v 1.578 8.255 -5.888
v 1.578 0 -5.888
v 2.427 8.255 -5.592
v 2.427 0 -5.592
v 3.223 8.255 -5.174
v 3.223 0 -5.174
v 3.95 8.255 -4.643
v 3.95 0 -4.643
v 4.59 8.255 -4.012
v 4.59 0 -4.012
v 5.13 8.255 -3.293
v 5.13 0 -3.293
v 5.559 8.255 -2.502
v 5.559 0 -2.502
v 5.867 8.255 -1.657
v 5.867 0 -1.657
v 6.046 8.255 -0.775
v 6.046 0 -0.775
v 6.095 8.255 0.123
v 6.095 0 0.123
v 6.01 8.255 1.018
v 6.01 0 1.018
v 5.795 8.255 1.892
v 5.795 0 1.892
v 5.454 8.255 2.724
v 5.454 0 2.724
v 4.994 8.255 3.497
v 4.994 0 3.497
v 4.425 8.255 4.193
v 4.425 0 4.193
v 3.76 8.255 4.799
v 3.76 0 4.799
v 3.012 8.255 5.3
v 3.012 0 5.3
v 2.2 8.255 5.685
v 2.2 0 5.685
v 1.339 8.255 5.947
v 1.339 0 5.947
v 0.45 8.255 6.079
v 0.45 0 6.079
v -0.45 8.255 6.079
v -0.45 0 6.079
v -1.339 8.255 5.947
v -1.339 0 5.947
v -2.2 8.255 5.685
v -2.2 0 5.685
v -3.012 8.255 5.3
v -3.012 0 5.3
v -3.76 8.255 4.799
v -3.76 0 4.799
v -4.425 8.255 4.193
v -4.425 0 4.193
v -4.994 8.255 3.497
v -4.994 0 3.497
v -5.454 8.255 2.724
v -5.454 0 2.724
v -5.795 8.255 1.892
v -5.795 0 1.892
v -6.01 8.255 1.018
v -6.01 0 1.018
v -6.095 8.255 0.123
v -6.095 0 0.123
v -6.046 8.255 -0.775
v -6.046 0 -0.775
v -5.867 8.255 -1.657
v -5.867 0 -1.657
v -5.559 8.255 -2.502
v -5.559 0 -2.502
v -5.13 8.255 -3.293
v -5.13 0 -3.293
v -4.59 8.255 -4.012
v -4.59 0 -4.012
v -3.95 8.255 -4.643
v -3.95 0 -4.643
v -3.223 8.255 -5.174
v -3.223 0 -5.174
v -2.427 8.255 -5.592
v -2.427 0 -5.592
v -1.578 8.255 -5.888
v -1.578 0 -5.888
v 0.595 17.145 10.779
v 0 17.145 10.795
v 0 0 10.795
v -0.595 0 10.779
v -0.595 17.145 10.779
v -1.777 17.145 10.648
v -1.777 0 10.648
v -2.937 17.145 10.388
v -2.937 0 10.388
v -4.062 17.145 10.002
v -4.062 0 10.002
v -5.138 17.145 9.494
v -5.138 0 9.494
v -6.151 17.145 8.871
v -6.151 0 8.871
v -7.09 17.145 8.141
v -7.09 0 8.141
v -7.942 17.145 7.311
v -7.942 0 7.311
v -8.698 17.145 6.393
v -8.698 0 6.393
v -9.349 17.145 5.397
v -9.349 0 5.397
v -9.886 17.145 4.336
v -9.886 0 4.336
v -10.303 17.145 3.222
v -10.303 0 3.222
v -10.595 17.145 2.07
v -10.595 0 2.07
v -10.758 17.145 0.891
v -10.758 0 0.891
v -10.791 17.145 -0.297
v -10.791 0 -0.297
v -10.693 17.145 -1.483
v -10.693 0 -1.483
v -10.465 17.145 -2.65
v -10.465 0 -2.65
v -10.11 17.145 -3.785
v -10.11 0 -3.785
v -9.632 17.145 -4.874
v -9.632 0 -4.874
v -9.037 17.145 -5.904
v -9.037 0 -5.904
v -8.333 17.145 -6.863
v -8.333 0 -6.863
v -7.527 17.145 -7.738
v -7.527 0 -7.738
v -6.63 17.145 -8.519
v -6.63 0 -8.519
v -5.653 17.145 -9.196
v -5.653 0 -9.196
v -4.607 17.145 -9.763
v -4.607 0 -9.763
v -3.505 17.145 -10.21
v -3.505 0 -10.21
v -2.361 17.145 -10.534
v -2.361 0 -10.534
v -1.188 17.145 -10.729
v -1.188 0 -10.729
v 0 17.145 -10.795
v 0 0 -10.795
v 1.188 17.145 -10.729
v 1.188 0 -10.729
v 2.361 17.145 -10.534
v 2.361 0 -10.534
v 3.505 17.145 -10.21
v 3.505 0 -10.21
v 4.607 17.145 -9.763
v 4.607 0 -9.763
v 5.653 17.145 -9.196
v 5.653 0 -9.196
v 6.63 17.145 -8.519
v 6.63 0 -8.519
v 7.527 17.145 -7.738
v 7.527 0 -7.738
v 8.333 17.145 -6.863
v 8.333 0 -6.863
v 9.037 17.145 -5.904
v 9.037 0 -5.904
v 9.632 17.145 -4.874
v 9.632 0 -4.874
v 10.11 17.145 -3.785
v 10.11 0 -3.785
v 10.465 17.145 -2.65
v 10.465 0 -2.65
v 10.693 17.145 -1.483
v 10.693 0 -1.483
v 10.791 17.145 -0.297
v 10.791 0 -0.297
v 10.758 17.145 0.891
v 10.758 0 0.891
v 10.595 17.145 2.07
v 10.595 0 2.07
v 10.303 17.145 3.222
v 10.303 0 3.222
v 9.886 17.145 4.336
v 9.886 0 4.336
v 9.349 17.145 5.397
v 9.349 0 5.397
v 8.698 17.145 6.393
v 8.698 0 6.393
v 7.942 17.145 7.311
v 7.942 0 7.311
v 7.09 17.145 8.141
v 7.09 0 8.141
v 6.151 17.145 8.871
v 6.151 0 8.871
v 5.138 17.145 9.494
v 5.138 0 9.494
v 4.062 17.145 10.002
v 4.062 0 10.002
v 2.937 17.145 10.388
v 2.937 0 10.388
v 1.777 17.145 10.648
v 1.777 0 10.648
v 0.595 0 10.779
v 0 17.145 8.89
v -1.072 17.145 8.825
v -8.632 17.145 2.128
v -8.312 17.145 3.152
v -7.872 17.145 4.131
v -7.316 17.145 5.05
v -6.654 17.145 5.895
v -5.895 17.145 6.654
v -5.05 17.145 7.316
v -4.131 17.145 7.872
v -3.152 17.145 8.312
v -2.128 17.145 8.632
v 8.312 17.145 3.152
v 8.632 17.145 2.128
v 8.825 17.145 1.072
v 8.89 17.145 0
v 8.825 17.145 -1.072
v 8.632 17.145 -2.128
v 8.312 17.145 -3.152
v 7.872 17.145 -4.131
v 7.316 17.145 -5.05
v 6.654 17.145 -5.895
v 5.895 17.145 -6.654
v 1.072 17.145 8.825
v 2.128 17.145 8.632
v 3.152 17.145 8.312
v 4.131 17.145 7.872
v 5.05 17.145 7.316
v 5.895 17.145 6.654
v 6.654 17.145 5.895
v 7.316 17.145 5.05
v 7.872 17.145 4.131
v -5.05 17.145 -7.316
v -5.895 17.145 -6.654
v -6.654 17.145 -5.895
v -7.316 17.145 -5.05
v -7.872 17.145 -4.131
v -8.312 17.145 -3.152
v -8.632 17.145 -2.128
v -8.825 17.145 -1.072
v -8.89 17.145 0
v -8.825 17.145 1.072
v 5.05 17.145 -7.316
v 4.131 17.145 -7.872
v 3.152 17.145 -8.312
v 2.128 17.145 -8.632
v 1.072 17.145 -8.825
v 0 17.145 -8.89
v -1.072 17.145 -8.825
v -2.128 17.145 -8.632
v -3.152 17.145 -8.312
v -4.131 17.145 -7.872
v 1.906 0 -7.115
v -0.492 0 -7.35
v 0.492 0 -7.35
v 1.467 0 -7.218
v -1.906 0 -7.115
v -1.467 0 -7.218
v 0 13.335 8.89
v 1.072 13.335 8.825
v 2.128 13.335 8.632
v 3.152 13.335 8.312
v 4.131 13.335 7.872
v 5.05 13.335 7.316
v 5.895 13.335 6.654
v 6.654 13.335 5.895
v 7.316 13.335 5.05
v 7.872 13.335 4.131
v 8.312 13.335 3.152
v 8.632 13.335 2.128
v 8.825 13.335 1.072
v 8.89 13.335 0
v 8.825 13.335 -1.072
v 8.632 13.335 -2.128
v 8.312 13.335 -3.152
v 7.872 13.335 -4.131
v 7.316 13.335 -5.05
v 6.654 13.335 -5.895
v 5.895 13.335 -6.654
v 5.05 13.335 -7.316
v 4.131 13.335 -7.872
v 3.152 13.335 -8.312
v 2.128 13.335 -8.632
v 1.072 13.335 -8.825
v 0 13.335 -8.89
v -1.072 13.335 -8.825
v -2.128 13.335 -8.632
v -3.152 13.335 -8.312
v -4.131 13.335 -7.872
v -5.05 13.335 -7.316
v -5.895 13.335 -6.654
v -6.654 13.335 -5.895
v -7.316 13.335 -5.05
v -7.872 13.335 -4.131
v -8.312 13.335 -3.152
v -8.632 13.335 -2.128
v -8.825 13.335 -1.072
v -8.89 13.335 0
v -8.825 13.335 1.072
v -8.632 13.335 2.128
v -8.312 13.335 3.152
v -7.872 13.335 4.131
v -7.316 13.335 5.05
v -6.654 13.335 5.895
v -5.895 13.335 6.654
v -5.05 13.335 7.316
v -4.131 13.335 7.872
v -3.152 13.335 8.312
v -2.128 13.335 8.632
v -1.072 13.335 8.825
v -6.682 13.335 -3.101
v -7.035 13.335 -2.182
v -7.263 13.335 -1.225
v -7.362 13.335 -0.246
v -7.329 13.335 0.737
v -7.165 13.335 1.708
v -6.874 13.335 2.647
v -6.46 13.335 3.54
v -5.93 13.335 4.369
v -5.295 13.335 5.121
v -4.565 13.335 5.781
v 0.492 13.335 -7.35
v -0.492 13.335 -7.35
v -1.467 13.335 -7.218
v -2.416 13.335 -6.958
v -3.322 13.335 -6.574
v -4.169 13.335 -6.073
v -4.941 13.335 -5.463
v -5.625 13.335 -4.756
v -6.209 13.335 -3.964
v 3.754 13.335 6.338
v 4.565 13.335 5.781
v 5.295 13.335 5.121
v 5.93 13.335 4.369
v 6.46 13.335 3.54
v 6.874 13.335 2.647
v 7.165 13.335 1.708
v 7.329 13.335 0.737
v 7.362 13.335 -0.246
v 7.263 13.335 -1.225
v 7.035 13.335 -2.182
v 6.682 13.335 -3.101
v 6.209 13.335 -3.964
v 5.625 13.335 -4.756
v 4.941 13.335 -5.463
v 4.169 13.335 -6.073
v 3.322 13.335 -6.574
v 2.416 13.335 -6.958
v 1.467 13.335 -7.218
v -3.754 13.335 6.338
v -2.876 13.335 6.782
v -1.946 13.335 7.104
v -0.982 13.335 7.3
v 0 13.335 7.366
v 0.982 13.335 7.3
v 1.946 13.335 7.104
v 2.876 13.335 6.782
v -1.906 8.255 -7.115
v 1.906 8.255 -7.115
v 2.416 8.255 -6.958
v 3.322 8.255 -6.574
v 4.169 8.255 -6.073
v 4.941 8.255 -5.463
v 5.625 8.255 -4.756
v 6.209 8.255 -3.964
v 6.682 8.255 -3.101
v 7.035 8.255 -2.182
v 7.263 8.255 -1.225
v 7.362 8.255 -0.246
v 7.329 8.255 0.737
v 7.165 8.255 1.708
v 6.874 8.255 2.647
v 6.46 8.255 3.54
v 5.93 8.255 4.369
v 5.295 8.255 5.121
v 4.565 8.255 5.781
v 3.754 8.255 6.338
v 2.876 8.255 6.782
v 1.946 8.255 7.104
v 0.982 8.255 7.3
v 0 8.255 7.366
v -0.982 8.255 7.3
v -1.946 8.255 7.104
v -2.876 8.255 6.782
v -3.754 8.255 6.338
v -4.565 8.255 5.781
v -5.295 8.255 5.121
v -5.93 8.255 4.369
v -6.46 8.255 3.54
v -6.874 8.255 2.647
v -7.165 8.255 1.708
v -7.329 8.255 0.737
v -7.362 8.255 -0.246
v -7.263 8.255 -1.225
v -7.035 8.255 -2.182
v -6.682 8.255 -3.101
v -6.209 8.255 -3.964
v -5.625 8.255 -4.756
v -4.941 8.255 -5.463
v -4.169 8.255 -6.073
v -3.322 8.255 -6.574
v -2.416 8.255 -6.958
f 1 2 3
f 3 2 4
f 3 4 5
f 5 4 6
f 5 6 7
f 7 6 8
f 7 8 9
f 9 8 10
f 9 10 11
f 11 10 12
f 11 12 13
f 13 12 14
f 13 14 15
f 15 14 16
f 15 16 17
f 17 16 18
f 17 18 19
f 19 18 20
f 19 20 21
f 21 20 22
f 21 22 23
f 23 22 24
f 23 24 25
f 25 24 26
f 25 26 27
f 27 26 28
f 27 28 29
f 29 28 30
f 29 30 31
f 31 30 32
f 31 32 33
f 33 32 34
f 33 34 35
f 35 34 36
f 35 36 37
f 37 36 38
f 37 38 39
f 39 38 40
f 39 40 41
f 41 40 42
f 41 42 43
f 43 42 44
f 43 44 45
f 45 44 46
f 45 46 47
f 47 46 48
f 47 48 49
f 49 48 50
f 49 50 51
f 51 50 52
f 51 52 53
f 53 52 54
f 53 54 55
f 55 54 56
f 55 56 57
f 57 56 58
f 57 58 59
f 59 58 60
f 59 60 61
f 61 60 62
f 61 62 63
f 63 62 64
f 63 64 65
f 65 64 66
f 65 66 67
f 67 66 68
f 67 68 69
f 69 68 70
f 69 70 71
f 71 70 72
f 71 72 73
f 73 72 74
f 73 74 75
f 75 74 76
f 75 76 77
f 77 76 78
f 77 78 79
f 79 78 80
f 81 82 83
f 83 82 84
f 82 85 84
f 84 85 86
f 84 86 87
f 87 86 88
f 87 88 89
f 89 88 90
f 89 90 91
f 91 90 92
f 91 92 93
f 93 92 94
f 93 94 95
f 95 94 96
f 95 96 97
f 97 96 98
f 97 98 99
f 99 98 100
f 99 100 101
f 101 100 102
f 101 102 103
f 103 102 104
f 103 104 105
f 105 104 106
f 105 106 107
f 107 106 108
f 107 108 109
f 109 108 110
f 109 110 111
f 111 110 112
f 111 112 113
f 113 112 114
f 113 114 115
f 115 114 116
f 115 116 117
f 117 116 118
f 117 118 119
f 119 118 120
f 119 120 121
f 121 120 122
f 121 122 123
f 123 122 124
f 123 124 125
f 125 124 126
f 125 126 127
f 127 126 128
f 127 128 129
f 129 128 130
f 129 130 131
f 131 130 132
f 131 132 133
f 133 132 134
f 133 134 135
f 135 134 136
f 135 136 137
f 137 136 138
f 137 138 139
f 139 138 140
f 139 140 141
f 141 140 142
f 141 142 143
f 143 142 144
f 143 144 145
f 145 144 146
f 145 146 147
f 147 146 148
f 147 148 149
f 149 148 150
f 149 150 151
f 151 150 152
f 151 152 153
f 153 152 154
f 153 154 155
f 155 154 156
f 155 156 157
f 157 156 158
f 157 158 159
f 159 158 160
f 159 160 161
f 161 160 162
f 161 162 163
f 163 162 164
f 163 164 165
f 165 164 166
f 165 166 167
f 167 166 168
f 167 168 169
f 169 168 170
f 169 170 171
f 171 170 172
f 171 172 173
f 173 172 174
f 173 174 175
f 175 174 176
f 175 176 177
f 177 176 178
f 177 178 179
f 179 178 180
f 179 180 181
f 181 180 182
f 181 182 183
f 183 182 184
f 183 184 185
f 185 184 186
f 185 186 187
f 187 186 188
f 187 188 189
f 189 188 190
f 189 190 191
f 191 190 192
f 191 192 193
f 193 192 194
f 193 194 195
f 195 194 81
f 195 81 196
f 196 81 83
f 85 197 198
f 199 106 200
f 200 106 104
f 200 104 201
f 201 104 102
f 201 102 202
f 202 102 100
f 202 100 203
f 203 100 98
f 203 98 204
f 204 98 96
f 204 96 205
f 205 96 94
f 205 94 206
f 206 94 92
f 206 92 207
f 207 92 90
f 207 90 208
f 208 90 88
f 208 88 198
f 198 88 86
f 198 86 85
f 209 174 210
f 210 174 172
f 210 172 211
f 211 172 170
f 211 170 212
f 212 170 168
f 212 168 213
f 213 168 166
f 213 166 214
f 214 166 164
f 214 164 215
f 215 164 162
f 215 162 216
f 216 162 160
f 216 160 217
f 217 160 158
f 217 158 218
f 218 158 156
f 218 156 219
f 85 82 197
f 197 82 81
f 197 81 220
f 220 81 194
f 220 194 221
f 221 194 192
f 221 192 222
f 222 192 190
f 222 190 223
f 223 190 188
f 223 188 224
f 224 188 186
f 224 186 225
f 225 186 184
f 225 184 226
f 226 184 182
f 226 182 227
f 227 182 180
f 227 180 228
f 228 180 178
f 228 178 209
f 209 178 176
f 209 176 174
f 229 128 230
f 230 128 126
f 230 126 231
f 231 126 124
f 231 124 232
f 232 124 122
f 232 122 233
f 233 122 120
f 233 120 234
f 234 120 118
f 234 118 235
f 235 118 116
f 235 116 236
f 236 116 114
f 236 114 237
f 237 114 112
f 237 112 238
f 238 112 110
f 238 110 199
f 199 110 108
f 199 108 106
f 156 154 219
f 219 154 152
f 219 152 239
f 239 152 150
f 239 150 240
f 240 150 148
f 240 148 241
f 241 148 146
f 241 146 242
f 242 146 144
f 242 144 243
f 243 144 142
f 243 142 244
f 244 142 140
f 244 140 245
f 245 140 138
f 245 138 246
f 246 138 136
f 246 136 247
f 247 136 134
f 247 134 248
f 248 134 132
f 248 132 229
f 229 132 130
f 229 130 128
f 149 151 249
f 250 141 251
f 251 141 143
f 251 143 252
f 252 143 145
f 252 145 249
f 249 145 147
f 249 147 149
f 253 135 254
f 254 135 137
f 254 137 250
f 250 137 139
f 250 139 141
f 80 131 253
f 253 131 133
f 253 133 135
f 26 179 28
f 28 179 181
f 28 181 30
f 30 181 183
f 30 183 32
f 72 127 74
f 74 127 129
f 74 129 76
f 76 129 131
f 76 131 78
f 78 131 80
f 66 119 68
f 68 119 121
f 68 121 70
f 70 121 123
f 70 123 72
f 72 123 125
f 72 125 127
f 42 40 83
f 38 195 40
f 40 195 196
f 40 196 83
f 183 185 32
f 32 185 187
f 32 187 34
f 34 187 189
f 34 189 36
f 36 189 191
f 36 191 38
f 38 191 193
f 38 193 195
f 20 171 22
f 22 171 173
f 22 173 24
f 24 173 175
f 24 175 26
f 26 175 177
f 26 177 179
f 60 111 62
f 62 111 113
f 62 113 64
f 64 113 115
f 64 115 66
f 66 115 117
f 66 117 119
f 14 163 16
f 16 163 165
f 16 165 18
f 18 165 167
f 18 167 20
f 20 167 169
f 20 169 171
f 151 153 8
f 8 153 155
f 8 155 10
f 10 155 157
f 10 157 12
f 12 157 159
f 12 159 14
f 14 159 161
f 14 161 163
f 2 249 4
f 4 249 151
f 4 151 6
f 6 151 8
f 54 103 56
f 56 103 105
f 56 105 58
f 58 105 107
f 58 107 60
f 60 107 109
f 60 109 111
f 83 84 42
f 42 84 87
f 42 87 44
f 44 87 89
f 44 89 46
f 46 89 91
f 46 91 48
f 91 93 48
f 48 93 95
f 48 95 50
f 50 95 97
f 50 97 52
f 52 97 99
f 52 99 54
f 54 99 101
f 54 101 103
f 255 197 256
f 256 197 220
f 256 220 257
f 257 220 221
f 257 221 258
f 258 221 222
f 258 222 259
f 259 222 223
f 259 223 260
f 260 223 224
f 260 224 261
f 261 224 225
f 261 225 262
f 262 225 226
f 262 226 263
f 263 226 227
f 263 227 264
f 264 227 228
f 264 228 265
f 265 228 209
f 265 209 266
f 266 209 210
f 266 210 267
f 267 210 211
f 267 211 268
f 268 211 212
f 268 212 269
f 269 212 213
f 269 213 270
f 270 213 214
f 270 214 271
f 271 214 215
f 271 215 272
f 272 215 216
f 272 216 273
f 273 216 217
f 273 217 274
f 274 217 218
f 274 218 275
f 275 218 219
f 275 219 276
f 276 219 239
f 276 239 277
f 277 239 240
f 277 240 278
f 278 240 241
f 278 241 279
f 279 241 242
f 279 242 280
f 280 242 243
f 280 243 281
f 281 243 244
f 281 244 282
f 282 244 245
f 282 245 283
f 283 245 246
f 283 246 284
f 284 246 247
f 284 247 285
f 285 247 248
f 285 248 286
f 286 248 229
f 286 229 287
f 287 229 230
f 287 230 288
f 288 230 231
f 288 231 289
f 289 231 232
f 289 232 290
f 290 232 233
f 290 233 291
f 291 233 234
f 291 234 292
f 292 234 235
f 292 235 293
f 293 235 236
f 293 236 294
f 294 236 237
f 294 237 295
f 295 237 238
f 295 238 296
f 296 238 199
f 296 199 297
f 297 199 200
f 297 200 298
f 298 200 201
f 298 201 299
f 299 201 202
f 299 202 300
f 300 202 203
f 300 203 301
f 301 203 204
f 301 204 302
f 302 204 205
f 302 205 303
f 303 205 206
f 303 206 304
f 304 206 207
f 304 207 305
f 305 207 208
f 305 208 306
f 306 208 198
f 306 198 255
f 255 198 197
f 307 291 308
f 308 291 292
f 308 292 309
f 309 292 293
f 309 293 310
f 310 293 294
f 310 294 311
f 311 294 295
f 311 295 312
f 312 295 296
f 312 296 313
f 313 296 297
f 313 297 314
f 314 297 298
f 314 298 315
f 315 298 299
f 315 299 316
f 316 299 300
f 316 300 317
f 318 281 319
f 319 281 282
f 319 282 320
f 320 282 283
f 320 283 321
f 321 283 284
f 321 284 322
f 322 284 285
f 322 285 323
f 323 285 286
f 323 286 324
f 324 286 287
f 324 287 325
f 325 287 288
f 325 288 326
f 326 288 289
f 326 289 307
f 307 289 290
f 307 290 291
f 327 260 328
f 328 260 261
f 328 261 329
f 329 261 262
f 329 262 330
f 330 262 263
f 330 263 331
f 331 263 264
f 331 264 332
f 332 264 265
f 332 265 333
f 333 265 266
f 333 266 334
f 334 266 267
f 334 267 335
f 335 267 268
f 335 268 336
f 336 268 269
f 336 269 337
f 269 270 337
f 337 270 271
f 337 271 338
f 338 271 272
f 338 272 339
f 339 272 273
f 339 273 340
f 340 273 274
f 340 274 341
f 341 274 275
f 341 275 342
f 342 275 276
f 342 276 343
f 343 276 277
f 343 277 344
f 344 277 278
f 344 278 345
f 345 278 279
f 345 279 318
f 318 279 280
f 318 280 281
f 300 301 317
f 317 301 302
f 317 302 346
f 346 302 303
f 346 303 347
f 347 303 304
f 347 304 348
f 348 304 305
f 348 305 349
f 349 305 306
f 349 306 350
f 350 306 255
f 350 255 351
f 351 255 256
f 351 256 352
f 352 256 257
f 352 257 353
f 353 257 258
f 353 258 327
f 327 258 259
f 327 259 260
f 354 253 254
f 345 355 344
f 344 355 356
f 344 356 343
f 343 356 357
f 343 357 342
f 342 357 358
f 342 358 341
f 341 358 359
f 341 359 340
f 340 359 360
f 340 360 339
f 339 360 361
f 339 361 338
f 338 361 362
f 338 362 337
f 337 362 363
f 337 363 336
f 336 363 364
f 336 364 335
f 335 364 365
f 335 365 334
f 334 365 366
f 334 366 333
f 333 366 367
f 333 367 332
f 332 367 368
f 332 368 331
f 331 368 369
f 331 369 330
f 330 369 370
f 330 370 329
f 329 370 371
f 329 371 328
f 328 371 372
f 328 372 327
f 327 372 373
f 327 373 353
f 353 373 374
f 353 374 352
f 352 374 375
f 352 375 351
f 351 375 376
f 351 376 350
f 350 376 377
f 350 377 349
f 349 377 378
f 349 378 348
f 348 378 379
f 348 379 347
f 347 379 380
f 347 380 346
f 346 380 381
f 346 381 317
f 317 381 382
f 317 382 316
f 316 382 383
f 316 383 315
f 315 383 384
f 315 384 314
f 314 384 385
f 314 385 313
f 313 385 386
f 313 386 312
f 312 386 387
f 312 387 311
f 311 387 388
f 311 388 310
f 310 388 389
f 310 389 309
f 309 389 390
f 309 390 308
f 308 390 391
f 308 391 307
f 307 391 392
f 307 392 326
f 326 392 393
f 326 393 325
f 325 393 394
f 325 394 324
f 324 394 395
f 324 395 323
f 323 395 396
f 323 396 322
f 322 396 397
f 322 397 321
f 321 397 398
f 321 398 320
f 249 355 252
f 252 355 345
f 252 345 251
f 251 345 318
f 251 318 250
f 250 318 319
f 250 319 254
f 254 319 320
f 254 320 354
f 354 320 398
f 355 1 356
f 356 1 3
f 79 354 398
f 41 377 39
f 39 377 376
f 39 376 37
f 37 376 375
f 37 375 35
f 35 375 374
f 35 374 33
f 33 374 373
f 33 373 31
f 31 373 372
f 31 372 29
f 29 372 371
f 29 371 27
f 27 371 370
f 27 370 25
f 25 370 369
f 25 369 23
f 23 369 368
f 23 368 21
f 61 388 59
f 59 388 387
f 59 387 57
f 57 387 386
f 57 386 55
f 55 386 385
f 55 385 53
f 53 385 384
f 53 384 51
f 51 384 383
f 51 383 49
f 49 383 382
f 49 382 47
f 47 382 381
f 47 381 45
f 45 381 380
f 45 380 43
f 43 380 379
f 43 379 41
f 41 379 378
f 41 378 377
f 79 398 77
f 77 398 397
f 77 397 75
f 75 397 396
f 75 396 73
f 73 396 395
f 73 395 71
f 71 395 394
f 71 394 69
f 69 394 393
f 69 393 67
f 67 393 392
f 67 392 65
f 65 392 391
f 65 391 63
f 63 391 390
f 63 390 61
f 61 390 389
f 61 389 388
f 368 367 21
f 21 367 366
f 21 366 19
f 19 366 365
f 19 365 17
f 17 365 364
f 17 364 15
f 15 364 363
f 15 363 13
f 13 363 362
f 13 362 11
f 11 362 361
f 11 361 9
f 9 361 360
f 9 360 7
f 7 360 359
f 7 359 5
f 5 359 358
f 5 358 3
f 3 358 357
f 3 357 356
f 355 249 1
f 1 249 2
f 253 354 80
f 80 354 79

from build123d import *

# Parameters (mm, degrees)
SKETCH1_R           = 10.795
SKETCH1_R_2         = 6.096
BOSS_EXTRUDE1_DEPTH = 17.145
SKETCH2_R           = 8.89
CUT_EXTRUDE1_DEPTH  = 3.81
SKETCH3_R           = 7.366
SKETCH3_R_2         = 6.096
CUT_EXTRUDE2_DEPTH  = 5.08
CUT_EXTRUDE3_DEPTH  = 8.255


with BuildPart() as part:
    # Sketch1 → Boss-Extrude1 (new body)
    with BuildSketch(Plane(origin=(0, 0, 0), x_dir=(1, 0, 0), z_dir=(0, 1, 0))):
        Circle(SKETCH1_R)
        Circle(SKETCH1_R_2, mode=Mode.SUBTRACT)
    extrude(amount=BOSS_EXTRUDE1_DEPTH)

    # Sketch2 → Cut-Extrude1 (cut)
    with BuildSketch(Plane(origin=(0, 17.145, 0), x_dir=(1, 0, 0), z_dir=(0, 1, 0))):
        Circle(SKETCH2_R)
    extrude(amount=-CUT_EXTRUDE1_DEPTH, mode=Mode.SUBTRACT)

    # Sketch3 → Cut-Extrude2 (cut)
    with BuildSketch(Plane(origin=(0, 13.335, 0), x_dir=(1, 0, 0), z_dir=(0, 1, 0))):
        Circle(SKETCH3_R)
        Circle(SKETCH3_R_2, mode=Mode.SUBTRACT)
    extrude(amount=-CUT_EXTRUDE2_DEPTH, mode=Mode.SUBTRACT)

    # Sketch4 → Cut-Extrude3 (cut)
    with BuildSketch(Plane(origin=(0, 8.255, 0), x_dir=(1, 0, 0), z_dir=(0, 1, 0))):
        with BuildLine():
            Line((0, 0), (-1.906461086, 7.115009636))
            ThreePointArc((-1.906461086, 7.115009636), (0, 7.366), (1.906461086, 7.115009636))
            Line((1.906461086, 7.115009636), (0, 0))
        make_face()
    extrude(amount=-CUT_EXTRUDE3_DEPTH, mode=Mode.SUBTRACT)


solid = part.part
